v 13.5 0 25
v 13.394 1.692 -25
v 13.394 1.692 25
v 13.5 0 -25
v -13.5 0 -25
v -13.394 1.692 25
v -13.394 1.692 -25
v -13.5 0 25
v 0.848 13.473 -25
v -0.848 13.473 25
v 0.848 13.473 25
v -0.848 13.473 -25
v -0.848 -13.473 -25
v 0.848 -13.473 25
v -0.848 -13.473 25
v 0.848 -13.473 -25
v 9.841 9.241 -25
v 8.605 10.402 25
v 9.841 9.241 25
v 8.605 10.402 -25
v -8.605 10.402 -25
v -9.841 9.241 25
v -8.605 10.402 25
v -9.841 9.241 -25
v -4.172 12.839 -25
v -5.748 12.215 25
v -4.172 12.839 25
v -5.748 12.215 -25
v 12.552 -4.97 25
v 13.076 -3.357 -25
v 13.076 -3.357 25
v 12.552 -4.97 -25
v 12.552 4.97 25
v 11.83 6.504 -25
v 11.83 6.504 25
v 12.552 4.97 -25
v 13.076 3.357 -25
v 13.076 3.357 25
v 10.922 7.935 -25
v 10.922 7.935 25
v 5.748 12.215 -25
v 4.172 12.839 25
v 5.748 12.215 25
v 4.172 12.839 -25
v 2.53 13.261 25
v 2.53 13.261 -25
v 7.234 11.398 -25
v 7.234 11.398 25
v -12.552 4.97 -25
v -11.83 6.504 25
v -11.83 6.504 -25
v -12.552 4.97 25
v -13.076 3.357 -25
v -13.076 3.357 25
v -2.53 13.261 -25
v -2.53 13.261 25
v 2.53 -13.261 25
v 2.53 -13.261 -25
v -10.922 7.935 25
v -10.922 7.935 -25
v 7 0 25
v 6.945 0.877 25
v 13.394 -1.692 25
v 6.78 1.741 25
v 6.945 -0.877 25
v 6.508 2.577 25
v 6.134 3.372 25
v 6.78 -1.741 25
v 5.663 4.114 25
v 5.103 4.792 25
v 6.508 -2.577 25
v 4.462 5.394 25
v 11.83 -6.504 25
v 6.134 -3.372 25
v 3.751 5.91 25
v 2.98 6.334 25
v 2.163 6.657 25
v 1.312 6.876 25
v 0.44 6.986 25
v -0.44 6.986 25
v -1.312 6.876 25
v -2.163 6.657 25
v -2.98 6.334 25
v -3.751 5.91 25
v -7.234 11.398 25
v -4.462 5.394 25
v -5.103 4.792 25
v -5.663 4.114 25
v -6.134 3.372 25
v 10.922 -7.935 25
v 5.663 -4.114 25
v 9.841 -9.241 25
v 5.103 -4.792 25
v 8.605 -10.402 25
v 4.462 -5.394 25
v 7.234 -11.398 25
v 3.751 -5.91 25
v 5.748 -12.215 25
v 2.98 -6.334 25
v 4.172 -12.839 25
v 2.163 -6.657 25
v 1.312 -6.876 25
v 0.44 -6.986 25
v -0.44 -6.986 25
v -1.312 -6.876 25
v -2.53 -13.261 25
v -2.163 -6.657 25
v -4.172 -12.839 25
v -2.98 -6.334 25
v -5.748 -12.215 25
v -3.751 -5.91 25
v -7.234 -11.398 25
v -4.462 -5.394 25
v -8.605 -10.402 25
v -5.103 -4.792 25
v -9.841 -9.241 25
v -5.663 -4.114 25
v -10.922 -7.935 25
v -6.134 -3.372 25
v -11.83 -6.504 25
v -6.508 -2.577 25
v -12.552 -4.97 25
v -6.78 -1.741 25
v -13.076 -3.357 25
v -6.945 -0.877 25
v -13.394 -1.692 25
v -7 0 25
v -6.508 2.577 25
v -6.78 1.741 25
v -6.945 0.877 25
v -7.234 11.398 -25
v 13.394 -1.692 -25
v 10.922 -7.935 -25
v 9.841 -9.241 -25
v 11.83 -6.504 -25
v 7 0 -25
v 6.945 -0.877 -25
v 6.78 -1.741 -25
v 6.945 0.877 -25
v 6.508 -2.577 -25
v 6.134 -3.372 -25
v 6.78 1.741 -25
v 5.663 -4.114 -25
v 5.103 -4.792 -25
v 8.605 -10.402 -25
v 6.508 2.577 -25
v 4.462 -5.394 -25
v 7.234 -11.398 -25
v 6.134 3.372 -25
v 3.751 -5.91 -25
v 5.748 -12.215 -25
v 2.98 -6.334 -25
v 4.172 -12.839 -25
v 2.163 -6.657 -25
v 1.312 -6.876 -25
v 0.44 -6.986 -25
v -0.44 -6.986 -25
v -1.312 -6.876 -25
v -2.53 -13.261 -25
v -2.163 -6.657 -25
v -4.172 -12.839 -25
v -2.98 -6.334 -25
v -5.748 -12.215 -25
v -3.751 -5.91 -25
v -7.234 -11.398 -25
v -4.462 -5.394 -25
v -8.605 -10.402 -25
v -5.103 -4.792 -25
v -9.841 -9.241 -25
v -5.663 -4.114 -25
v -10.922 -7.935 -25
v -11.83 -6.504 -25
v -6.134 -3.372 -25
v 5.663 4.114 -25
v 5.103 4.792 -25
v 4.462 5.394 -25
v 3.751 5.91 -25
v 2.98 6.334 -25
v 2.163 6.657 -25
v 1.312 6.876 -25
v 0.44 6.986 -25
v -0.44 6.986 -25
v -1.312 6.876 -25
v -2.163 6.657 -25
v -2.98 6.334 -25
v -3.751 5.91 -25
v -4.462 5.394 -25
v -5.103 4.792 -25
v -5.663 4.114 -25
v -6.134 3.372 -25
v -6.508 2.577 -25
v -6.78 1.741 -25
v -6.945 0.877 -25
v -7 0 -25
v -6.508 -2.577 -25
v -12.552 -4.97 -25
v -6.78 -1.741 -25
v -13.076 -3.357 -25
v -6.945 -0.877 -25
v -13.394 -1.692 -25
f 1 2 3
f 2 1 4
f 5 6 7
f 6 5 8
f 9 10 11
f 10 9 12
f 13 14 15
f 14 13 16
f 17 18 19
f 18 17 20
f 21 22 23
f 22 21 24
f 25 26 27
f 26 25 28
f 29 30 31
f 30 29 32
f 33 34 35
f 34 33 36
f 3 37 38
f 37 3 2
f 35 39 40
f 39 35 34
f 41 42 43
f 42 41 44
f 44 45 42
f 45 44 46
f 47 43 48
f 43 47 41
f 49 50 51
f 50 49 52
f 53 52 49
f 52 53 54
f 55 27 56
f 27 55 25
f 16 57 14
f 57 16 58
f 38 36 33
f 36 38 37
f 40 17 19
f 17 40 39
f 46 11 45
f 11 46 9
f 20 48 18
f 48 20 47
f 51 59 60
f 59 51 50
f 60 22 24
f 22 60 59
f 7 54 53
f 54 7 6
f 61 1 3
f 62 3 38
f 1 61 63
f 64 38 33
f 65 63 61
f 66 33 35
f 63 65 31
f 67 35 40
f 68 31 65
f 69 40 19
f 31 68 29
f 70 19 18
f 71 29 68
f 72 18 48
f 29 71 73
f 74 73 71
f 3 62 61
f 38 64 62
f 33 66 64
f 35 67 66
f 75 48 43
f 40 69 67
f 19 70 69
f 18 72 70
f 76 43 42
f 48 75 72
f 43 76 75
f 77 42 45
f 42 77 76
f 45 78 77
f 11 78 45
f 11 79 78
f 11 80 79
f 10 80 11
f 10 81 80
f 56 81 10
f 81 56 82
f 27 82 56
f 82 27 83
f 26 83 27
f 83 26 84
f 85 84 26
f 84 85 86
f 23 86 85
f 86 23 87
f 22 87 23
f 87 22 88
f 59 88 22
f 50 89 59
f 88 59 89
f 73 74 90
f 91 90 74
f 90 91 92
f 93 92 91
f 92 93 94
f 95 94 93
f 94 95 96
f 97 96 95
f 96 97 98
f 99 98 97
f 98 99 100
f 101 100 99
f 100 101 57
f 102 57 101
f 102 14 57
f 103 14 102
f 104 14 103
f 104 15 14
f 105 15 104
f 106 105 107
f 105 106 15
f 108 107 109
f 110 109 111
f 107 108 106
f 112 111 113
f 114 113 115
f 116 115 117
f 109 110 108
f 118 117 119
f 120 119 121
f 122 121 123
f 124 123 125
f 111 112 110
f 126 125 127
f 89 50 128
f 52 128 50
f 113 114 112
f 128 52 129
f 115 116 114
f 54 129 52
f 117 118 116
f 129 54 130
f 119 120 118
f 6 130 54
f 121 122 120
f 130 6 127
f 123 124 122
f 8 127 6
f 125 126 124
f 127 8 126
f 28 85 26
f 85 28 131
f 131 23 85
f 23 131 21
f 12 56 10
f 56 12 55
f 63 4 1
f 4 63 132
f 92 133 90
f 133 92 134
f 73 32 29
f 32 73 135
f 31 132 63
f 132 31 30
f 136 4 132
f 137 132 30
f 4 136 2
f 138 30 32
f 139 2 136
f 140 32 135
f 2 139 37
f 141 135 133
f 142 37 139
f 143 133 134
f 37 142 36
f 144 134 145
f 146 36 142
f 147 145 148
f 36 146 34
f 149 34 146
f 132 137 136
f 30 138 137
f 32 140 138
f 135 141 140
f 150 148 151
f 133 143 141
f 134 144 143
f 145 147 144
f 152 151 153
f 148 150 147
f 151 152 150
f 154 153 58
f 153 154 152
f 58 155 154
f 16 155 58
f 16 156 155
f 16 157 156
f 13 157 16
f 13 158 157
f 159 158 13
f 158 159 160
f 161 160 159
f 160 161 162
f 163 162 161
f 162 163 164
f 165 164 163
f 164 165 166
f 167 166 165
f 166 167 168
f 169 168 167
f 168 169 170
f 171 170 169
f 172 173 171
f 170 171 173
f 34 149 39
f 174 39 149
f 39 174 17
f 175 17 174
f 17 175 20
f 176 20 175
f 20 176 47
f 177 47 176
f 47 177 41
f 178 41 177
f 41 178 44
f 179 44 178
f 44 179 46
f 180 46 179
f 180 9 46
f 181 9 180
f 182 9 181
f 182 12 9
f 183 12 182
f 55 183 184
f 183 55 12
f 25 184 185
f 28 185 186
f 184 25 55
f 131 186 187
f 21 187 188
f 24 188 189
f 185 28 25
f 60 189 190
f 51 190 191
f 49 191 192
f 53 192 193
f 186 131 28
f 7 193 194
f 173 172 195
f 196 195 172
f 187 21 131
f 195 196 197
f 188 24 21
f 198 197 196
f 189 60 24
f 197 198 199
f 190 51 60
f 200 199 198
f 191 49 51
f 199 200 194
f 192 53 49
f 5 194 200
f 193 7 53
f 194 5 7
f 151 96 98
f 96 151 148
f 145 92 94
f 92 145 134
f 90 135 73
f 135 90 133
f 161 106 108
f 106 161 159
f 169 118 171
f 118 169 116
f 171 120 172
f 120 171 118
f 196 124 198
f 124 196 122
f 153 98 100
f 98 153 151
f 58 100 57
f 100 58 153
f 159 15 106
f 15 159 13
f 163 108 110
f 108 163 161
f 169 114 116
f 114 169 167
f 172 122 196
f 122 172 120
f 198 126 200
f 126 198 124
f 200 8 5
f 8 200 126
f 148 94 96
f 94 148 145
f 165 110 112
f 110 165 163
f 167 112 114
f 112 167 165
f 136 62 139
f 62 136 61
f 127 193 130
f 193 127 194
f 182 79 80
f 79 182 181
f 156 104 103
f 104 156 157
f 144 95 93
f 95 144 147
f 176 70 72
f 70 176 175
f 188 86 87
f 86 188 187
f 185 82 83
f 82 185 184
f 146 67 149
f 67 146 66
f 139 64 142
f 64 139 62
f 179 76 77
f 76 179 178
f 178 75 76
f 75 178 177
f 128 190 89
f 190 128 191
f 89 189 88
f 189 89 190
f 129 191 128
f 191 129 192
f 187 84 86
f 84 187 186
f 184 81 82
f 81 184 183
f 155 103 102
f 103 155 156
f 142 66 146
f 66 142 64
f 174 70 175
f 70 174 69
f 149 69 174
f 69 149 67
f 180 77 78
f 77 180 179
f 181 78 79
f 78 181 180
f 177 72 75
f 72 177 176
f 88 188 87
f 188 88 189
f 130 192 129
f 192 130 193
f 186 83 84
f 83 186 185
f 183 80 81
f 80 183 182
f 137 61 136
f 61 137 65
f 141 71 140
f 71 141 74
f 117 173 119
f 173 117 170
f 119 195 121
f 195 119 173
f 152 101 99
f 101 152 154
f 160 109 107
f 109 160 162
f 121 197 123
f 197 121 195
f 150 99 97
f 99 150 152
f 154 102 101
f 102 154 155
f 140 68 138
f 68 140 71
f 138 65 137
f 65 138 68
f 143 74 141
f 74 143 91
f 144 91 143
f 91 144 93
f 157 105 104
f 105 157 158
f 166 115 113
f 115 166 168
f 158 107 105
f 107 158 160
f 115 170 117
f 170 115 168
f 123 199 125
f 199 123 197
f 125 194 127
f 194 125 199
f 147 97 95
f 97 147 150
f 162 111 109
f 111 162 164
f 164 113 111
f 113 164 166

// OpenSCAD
$fn = 50;


difference() {
	union() {
		translate(v = [0, 0, -25.0000000000]) {
			cylinder(h = 50, r = 13.5000000000);
		}
	}
	union() {
		translate(v = [0, 0, -100.0000000000]) {
			cylinder(h = 200, r = 7);
		}
	}
}
